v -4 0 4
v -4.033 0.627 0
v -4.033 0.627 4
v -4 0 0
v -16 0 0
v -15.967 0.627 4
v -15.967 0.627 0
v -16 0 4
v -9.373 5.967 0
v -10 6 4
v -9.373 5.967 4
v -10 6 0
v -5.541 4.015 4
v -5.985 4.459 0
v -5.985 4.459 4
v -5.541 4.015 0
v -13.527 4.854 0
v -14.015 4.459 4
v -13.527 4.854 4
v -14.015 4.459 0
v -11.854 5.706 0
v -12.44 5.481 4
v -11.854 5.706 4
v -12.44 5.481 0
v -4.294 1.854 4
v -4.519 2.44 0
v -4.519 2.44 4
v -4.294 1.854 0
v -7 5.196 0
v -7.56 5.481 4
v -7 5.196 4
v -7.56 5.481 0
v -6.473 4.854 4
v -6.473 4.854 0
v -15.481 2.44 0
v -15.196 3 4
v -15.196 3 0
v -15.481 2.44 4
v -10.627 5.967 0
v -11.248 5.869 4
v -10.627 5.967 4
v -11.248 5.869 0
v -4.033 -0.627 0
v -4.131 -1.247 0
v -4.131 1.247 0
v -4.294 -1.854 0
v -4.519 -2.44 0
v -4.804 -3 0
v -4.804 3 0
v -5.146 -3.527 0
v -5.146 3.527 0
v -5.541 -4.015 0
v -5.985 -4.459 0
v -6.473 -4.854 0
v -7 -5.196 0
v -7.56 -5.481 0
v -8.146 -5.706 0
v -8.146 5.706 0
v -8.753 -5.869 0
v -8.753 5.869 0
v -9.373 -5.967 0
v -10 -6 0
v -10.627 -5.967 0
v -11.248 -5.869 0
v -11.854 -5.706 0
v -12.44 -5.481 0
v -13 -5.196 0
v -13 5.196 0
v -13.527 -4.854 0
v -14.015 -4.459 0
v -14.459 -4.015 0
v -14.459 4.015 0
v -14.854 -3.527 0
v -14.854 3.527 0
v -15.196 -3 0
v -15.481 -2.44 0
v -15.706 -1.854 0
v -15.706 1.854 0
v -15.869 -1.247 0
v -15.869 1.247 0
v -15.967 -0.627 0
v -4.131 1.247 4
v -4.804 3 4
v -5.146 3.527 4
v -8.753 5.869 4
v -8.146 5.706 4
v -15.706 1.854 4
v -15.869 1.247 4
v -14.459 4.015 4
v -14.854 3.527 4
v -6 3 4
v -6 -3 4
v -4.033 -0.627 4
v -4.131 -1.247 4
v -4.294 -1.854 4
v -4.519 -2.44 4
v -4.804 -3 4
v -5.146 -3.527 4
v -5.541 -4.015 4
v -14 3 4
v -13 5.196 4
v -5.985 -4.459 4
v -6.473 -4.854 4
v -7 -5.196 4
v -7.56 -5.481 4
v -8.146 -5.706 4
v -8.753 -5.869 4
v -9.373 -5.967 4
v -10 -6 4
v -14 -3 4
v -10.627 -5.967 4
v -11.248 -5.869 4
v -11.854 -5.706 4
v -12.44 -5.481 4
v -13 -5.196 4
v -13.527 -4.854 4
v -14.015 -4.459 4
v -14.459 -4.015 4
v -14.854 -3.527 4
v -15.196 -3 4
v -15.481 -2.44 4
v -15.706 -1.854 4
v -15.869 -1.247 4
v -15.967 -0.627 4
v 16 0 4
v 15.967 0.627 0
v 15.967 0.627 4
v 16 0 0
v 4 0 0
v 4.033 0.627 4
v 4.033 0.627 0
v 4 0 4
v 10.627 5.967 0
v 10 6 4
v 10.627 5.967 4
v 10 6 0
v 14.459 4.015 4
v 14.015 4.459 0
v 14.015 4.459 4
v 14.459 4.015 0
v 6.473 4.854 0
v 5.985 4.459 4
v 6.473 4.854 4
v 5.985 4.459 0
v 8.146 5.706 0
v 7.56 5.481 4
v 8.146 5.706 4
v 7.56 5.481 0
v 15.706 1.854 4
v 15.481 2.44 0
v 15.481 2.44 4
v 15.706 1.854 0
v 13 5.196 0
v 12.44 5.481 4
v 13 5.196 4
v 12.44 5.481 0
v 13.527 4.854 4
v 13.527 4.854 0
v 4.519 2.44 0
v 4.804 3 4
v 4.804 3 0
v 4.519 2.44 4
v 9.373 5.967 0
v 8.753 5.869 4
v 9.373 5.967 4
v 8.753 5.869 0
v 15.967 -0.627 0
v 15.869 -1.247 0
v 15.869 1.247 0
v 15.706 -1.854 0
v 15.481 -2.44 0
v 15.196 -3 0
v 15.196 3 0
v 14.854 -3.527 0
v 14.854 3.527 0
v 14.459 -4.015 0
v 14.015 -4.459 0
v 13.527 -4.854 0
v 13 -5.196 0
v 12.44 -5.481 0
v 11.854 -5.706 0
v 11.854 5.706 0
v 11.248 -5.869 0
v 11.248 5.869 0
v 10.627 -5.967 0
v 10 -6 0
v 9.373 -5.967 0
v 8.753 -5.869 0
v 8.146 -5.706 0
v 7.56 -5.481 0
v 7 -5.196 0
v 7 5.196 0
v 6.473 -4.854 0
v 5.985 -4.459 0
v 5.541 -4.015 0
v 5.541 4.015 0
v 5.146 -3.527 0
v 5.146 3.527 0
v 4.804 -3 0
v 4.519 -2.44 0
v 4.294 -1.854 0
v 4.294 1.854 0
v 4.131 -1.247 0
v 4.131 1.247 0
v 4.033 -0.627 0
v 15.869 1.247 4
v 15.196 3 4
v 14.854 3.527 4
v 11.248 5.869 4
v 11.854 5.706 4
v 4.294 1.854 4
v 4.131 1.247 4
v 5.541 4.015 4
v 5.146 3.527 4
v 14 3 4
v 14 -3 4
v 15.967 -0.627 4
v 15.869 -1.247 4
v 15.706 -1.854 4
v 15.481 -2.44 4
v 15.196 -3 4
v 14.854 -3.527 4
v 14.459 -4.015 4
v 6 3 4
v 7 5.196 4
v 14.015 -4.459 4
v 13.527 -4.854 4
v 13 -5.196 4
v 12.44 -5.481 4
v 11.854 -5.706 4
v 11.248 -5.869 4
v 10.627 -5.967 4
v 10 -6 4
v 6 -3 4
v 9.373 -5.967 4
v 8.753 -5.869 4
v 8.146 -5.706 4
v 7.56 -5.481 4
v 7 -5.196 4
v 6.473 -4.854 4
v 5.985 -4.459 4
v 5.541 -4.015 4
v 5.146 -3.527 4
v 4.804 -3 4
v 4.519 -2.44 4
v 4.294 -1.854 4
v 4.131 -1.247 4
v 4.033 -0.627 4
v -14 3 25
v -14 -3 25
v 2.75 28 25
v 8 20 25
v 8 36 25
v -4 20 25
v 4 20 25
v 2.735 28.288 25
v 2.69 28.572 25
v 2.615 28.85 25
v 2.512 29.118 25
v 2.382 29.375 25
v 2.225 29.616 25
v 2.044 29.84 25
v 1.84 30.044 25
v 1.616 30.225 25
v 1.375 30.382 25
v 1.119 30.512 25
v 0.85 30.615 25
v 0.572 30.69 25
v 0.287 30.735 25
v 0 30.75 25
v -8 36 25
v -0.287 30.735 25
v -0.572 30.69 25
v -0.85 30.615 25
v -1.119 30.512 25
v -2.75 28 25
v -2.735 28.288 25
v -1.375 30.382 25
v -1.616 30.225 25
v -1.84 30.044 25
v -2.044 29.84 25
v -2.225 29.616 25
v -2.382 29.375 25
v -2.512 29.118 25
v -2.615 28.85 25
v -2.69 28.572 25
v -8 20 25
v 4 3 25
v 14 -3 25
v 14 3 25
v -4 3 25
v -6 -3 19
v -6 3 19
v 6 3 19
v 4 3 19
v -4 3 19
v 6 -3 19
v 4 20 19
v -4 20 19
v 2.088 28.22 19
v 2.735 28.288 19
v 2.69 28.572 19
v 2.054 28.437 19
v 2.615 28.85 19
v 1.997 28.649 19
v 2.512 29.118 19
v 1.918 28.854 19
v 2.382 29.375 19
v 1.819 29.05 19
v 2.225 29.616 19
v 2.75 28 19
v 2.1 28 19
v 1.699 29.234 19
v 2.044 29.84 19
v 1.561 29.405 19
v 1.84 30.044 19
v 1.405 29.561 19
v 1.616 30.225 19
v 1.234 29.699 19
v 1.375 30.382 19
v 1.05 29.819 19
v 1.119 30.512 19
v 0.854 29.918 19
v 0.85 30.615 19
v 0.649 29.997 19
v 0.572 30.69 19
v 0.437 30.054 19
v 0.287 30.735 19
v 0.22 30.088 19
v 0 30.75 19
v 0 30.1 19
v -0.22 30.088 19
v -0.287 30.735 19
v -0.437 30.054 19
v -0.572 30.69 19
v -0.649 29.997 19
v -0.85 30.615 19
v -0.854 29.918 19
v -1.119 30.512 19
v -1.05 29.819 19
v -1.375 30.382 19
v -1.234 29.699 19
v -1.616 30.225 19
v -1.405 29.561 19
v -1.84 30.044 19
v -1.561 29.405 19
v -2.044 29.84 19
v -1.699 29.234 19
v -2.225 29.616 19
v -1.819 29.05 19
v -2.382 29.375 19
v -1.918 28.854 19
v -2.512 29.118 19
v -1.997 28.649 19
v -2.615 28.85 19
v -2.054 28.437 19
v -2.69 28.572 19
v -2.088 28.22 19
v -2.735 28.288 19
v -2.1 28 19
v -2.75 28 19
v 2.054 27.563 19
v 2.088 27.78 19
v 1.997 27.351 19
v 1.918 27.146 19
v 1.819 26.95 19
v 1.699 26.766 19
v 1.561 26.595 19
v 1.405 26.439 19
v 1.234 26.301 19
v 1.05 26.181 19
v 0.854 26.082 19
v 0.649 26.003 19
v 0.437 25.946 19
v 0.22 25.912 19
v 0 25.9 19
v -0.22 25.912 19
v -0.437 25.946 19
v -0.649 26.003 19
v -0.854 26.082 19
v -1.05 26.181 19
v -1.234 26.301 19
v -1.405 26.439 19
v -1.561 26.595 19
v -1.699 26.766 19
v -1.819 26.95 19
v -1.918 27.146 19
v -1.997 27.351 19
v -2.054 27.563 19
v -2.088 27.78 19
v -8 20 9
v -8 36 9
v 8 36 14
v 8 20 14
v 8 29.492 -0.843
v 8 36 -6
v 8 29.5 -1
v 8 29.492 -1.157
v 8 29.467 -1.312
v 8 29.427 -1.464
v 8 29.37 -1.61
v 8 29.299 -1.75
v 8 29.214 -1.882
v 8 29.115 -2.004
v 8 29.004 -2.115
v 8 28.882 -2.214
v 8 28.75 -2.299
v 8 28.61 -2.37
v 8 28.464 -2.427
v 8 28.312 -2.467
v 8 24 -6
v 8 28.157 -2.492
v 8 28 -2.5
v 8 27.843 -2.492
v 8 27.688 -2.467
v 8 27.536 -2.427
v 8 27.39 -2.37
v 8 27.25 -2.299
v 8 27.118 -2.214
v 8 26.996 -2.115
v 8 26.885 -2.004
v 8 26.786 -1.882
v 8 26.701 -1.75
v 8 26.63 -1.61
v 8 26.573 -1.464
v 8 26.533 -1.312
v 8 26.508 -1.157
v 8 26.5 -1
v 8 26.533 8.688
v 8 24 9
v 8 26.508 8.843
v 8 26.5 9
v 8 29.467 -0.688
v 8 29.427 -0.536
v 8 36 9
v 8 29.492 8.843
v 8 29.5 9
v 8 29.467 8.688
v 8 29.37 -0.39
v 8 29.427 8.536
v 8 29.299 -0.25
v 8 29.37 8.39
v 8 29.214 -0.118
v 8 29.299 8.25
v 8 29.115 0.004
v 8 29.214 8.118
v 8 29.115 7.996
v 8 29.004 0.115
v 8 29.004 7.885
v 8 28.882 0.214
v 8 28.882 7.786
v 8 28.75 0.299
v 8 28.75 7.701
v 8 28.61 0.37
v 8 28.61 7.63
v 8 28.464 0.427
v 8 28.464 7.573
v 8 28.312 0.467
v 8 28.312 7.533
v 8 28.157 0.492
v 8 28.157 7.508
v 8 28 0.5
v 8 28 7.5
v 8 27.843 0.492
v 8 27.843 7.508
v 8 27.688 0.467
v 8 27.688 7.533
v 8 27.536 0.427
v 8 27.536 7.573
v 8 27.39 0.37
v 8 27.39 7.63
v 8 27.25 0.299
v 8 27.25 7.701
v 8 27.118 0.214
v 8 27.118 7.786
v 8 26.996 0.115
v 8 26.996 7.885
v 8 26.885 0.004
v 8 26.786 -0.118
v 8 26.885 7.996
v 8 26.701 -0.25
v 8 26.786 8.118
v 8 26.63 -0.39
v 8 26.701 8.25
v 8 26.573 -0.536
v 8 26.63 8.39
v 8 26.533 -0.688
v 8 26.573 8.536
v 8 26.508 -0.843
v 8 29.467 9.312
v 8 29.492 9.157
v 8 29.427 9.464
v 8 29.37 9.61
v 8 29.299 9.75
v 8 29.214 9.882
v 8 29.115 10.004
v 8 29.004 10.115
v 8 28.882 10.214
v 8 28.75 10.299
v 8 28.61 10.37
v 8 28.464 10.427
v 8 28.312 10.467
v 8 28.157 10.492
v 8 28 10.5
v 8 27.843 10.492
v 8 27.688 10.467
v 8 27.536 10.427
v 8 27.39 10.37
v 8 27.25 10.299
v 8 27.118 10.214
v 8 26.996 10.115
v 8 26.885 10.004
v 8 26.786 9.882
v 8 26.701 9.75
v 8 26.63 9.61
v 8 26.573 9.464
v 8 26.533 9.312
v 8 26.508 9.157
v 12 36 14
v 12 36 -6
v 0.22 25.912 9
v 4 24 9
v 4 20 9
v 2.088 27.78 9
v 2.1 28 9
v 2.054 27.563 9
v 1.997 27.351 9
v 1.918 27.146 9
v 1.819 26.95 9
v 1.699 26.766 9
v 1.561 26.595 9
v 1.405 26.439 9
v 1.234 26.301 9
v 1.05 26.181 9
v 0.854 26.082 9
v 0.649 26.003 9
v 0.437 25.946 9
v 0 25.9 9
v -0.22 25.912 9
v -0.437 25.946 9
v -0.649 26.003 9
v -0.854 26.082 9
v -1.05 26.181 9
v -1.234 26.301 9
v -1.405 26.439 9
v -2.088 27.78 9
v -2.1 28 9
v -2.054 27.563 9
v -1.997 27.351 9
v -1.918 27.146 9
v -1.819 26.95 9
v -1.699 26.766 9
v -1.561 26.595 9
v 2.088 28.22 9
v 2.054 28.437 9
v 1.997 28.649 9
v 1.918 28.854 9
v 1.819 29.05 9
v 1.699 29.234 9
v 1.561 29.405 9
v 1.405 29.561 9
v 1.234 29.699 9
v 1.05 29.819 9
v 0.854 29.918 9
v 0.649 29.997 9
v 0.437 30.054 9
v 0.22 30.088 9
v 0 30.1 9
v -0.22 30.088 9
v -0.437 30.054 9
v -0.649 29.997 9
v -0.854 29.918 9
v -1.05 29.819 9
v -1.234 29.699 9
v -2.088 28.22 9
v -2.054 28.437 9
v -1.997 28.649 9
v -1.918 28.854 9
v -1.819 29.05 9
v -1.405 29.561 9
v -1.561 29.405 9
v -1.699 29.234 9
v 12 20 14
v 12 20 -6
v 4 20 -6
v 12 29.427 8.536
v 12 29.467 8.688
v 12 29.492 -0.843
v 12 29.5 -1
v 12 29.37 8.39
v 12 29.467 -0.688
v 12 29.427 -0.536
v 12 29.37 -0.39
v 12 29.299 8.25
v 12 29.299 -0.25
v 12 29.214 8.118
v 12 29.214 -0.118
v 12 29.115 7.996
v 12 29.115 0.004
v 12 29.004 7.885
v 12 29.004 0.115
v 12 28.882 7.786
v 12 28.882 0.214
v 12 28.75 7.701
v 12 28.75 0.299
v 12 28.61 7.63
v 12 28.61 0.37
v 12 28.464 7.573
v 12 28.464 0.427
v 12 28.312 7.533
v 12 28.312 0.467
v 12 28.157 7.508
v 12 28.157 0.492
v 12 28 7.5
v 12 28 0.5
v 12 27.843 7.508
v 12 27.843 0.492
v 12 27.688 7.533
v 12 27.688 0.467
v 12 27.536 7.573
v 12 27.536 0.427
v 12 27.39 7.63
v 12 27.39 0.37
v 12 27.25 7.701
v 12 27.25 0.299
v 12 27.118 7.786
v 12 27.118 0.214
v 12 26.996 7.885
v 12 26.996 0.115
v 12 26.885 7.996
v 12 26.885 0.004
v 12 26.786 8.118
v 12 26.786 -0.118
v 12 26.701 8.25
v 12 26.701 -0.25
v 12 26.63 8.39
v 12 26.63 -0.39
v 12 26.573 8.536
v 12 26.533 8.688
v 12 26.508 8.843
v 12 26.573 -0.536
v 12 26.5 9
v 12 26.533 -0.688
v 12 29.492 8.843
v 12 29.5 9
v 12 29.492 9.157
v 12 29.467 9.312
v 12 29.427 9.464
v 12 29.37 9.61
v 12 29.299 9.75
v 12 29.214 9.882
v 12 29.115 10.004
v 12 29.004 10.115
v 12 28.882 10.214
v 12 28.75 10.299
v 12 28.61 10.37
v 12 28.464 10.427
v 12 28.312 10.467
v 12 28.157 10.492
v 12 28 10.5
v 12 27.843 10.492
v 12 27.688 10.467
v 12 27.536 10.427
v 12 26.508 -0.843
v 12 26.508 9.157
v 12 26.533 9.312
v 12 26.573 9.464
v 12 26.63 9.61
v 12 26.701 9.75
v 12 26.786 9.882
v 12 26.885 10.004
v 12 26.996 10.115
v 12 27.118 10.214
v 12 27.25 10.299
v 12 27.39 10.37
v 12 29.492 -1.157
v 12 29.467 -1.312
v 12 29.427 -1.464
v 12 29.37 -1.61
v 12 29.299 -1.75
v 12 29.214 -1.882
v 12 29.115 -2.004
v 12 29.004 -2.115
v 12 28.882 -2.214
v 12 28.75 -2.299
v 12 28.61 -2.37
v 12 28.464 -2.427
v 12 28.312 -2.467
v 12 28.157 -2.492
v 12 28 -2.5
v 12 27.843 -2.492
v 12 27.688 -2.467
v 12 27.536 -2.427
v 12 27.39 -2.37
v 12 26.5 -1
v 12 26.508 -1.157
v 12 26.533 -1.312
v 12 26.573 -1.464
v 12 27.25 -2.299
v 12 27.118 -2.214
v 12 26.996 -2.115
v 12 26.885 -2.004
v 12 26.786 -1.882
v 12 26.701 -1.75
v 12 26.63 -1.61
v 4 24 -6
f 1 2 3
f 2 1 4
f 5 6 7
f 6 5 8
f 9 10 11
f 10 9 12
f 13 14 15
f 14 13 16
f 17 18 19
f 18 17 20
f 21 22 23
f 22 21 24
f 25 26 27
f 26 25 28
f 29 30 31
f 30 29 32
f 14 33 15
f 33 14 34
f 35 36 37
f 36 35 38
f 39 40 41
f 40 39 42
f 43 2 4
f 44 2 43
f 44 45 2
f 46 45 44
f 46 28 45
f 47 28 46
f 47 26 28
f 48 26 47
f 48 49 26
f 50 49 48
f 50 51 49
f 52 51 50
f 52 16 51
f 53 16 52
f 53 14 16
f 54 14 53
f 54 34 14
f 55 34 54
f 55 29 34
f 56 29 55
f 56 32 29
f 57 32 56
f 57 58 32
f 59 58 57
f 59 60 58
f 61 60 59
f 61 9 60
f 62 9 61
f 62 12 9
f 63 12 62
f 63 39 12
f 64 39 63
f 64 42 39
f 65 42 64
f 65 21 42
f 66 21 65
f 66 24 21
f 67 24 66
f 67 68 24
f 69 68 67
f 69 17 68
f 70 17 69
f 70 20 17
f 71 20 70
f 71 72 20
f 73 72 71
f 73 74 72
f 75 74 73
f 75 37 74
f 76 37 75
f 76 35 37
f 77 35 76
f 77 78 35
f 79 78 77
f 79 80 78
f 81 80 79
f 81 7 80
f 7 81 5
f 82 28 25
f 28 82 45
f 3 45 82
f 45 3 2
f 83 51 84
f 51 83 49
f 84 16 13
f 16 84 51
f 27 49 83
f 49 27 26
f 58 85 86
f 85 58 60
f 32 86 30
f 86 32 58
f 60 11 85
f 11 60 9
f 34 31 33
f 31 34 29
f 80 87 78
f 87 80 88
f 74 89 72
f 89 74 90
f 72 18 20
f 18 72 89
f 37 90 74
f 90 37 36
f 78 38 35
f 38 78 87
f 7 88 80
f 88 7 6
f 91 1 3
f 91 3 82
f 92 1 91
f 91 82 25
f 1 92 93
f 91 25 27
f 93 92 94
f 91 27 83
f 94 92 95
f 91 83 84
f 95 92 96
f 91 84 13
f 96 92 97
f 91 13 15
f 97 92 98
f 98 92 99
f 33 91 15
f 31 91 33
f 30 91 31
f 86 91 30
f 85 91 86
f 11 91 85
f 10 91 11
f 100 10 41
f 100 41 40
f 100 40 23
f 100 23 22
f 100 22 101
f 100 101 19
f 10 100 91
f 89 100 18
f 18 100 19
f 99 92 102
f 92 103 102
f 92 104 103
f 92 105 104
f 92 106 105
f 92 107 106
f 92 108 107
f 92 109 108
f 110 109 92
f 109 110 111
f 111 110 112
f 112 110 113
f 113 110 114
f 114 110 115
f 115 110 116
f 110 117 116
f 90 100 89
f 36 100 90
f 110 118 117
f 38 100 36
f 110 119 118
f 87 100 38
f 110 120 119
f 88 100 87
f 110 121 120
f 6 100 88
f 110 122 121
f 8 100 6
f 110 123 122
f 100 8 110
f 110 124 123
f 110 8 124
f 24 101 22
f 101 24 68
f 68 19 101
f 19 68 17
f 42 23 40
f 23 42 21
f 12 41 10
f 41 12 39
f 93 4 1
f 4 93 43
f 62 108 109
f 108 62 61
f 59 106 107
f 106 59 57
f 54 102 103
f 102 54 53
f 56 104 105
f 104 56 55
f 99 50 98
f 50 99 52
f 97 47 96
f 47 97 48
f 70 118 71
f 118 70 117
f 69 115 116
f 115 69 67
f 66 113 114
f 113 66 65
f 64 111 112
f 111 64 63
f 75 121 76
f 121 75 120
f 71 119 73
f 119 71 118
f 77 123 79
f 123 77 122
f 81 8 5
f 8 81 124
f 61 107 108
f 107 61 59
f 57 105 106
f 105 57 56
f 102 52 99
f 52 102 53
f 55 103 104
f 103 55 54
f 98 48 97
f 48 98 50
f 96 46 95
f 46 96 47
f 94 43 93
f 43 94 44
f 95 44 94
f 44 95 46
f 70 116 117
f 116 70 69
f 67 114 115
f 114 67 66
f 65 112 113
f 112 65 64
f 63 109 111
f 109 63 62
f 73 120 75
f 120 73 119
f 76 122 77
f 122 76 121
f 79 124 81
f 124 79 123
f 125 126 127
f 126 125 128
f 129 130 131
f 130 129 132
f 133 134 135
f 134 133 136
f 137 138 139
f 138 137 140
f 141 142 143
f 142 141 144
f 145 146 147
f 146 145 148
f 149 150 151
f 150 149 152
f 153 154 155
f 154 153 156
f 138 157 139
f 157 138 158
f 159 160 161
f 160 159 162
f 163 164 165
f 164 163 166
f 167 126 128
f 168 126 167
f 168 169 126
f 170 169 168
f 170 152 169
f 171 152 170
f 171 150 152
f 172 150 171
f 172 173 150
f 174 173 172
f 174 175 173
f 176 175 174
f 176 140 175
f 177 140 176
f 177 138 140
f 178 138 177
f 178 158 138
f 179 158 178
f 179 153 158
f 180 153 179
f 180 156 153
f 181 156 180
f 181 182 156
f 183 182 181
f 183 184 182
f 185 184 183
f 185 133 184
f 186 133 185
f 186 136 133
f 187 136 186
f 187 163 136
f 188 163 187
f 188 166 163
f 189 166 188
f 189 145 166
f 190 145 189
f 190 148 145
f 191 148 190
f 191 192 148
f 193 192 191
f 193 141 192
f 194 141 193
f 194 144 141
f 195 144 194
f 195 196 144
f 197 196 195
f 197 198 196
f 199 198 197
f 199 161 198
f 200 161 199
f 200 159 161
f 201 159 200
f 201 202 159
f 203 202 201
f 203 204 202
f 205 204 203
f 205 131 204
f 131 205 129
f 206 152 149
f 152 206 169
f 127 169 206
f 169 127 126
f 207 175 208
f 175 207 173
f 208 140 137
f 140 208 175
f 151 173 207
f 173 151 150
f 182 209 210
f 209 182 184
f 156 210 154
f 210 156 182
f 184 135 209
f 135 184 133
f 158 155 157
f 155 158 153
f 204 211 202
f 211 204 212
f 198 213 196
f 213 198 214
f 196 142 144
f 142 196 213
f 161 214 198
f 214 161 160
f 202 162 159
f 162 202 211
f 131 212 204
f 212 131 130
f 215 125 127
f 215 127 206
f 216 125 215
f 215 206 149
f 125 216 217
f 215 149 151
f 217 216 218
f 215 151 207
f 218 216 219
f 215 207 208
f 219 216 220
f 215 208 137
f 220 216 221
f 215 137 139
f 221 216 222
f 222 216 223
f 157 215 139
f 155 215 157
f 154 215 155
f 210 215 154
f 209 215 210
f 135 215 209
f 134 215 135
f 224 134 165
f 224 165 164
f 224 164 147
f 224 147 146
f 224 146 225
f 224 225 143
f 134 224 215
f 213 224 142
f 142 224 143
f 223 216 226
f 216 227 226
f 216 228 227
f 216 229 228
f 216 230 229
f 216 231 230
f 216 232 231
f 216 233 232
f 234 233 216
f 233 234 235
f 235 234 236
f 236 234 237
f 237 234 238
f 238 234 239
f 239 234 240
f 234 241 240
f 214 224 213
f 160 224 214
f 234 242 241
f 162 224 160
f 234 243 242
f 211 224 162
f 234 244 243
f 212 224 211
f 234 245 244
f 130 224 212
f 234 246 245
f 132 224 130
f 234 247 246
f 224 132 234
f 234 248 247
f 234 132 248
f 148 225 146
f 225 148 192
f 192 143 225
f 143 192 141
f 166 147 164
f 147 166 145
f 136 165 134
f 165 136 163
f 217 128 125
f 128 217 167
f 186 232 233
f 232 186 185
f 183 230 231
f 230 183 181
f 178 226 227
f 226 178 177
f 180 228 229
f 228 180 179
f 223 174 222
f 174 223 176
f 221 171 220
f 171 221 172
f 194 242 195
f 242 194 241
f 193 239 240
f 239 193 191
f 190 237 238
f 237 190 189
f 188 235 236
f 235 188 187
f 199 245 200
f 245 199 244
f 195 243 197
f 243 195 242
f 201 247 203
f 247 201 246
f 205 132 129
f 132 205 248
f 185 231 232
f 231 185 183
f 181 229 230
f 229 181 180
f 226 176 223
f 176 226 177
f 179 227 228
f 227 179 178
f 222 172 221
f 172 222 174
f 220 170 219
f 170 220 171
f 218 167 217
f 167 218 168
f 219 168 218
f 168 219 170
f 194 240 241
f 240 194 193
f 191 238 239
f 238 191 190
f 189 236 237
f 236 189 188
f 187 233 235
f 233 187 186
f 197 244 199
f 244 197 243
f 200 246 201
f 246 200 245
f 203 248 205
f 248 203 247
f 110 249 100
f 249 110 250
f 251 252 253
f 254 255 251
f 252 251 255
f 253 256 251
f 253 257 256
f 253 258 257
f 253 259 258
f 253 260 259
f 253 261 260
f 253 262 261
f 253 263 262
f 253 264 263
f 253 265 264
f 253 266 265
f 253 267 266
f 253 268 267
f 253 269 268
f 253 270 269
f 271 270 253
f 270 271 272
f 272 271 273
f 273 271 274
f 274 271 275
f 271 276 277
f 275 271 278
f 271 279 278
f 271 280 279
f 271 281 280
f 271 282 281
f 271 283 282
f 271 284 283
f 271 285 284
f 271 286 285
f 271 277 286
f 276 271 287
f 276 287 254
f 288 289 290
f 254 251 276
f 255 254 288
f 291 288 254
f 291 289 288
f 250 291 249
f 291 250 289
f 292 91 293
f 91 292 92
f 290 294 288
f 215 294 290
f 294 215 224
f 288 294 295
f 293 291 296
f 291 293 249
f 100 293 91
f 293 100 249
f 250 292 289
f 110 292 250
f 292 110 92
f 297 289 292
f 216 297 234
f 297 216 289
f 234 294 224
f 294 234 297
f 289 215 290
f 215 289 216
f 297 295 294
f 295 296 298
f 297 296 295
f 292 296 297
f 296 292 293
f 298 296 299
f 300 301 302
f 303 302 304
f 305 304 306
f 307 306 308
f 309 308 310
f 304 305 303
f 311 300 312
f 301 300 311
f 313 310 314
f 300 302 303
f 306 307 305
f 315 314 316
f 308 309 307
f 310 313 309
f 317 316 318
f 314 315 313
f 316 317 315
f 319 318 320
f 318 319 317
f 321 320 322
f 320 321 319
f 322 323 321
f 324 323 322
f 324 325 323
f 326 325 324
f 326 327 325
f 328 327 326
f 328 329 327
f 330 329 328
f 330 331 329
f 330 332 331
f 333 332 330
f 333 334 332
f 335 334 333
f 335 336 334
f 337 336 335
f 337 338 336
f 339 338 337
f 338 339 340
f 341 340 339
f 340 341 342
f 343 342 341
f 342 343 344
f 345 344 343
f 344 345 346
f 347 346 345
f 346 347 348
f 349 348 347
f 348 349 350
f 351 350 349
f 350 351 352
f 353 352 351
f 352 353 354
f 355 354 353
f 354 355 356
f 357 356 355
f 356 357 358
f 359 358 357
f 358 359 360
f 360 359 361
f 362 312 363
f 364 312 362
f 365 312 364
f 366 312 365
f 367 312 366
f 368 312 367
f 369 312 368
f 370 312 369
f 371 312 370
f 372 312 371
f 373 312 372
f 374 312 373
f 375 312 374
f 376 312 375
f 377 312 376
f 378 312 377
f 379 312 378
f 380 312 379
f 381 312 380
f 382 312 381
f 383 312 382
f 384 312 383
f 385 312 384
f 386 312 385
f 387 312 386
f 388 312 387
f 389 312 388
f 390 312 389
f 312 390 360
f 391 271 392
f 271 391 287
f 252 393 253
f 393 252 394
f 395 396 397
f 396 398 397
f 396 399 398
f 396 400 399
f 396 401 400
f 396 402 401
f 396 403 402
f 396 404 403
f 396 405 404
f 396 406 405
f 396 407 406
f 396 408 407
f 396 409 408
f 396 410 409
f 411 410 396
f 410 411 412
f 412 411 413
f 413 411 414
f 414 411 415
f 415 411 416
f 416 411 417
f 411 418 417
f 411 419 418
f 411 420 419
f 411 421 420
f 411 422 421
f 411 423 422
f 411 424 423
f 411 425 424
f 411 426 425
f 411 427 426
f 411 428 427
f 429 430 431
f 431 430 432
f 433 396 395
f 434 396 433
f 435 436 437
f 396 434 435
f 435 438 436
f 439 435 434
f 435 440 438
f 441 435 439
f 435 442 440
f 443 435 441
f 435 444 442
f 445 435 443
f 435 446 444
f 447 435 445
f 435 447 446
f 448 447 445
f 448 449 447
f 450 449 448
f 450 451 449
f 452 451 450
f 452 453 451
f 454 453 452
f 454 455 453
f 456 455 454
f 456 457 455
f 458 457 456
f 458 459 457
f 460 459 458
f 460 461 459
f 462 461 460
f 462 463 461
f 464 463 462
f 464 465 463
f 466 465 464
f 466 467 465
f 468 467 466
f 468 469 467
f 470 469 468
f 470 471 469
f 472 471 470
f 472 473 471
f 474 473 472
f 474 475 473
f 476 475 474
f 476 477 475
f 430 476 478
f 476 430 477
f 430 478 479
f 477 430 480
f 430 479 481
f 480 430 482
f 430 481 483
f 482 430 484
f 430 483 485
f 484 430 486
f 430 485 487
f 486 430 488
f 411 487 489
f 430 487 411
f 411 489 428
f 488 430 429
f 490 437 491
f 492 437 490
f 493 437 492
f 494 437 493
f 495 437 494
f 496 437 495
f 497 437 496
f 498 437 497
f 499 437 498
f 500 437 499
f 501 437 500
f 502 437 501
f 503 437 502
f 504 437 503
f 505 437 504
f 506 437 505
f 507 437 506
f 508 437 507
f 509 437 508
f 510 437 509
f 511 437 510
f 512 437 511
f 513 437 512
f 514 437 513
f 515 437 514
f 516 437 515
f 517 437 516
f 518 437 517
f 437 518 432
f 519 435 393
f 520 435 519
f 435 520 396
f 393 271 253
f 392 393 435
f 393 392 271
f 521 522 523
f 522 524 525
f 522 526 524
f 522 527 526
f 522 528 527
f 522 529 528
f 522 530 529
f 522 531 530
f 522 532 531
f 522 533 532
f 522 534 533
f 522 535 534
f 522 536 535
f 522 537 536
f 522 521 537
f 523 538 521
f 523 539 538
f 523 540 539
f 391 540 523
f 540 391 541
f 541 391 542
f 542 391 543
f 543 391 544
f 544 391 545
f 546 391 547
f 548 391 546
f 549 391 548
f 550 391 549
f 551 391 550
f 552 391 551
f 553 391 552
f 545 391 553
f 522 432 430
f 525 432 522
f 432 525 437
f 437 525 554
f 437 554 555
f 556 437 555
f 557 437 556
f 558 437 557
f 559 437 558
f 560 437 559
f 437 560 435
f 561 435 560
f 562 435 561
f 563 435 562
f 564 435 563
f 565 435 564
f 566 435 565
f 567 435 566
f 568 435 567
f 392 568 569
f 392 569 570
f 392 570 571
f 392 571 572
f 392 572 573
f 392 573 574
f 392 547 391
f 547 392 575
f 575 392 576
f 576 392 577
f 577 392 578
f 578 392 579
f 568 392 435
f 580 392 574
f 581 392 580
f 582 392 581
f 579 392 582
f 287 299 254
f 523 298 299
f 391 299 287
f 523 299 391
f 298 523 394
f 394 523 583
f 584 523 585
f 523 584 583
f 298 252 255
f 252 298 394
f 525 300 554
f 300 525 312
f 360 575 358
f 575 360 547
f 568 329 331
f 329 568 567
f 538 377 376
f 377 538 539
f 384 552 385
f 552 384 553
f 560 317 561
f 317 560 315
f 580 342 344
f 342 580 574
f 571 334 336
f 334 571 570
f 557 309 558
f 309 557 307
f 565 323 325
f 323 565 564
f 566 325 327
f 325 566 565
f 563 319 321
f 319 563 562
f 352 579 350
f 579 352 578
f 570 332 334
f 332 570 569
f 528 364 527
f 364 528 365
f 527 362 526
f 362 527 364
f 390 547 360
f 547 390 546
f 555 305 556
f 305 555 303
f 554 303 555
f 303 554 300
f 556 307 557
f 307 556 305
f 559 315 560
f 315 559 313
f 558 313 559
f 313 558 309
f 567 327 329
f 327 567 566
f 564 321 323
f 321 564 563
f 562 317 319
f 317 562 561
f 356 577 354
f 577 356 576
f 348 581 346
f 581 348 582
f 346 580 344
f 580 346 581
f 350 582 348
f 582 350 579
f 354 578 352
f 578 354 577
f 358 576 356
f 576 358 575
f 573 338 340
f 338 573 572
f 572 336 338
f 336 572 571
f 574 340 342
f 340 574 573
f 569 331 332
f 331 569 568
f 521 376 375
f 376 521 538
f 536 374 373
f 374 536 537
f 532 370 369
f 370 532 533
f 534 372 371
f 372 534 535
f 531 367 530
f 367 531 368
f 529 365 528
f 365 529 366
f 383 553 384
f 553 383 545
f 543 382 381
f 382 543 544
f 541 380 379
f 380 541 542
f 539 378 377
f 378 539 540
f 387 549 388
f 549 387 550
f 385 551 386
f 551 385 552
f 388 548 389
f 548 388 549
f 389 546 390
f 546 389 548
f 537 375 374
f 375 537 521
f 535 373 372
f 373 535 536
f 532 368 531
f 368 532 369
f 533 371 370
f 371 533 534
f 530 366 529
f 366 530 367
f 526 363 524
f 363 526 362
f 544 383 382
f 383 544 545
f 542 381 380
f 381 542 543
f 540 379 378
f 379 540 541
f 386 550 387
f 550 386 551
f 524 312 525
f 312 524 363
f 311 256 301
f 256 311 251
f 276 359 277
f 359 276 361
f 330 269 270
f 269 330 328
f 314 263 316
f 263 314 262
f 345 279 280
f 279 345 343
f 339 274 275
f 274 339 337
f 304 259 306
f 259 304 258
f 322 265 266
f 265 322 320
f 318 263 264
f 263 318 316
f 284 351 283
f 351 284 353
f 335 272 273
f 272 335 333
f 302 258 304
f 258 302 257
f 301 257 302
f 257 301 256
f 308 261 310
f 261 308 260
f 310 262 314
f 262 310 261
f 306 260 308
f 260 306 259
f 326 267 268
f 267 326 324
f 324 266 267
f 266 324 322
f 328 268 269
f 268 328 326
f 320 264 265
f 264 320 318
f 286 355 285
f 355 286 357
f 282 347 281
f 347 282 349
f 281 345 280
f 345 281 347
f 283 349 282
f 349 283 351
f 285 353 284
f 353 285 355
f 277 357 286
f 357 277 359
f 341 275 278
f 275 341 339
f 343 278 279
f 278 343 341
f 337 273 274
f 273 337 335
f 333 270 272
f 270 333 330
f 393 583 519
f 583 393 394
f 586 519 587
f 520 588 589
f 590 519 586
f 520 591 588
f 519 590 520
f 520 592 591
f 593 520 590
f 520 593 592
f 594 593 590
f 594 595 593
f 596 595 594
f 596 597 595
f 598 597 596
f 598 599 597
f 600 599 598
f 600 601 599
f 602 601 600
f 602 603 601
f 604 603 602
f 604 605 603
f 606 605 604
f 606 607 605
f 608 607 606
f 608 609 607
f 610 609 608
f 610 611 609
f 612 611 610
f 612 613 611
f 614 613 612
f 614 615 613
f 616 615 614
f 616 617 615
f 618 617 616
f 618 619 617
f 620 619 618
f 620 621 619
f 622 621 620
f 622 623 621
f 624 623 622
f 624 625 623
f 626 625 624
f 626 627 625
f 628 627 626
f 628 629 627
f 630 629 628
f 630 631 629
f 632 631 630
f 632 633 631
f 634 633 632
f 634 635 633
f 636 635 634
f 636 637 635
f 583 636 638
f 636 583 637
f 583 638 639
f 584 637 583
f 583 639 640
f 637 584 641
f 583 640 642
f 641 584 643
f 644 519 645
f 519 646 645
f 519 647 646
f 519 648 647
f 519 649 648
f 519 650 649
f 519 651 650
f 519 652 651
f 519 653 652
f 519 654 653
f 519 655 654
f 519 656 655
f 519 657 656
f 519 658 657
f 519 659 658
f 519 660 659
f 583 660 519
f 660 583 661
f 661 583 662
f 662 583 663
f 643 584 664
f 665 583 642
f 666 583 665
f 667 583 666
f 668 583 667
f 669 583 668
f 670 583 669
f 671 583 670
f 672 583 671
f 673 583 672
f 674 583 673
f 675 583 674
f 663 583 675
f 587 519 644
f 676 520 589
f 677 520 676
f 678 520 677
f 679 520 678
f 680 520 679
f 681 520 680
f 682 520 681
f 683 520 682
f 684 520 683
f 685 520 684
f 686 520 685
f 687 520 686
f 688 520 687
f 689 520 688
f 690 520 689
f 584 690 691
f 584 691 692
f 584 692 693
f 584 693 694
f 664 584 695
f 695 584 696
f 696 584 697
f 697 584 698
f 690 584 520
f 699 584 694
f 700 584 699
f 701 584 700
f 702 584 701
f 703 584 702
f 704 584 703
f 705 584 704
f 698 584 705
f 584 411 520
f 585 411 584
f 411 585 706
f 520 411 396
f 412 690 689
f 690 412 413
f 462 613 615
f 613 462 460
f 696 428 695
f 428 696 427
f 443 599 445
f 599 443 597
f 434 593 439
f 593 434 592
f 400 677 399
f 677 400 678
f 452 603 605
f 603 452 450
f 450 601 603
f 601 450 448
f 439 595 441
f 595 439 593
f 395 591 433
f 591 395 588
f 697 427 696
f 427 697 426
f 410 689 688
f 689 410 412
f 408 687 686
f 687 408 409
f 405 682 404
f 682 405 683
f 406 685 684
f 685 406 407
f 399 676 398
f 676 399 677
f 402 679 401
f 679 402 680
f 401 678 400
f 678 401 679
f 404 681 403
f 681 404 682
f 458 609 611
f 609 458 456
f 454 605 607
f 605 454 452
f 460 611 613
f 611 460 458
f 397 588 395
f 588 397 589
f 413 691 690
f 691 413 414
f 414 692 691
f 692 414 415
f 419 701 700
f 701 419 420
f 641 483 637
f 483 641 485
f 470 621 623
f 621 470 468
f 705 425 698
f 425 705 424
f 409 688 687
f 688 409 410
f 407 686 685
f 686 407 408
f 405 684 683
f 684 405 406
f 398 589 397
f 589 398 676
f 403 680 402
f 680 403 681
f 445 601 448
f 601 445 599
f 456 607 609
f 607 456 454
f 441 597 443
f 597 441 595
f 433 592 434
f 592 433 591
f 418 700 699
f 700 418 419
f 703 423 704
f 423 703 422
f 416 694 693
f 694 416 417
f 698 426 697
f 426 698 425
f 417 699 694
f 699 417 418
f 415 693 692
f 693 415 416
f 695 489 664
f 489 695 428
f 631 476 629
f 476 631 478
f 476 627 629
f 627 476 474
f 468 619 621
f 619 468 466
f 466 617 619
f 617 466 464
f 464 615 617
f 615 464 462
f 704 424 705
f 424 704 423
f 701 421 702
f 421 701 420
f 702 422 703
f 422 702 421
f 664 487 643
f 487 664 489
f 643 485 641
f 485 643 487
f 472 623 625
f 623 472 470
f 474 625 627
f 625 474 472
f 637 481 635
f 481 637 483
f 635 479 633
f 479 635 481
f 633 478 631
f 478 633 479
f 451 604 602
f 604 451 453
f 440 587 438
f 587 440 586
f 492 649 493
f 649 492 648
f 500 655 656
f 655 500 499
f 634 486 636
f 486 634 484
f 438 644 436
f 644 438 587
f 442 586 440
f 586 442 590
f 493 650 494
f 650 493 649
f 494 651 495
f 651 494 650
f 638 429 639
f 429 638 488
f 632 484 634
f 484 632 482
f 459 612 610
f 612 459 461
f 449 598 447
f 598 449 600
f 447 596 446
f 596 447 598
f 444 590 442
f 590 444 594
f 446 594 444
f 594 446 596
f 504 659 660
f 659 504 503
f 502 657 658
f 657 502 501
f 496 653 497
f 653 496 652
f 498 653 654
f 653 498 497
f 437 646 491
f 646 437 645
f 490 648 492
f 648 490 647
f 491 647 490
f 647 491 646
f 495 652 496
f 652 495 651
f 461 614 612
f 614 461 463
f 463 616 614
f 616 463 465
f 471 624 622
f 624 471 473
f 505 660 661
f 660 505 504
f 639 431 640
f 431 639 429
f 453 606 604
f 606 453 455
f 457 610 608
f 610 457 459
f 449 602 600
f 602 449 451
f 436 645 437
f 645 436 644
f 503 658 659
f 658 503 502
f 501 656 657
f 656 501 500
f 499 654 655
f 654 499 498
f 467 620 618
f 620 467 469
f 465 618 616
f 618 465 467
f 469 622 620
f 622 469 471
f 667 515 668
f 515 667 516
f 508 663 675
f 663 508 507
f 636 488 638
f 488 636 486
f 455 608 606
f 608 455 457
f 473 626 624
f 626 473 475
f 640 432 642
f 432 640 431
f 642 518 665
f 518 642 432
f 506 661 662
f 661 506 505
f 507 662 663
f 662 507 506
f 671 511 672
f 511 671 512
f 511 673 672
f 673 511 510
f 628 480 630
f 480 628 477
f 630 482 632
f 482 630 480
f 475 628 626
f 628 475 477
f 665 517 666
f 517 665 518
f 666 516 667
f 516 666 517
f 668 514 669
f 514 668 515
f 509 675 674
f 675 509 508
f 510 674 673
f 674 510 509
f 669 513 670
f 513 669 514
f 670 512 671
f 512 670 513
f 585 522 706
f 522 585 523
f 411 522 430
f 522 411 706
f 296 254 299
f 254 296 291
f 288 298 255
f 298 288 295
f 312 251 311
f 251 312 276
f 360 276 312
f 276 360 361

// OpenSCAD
// Suporte do Sensor de Filamento no Cabeçote - Ender 3 V3 KE para MMX
// Modelado parametricamente em formato de "Portal" para desviar do cabo flat
// Criado por Antigravity AI

$fn = 60;

// ==========================================
// VARIÁVEIS PARAMÉTRICAS (Altere aqui se precisar ajustar)
// ==========================================
screw_spacing = 20;     // Distância de centro a centro dos parafusos traseiros (mm)
tunnel_height = 25;     // Altura vertical livre para o cabo flat passar por dentro (mm)
reach_distance = 28;    // Avanço horizontal (Y) até a entrada de latão da extrusora (mm)
base_thickness = 4;     // Espessura da base nos furos (mm)
pilar_width = 8;        // Largura dos pilares laterais (mm)
pilar_thickness = 6;    // Espessura dos pilares laterais (mm)
arm_thickness = 6;      // Espessura do braço horizontal (mm)
ptfe_thread_d = 5.5;    // Diâmetro do furo para rosca M6 do conector pneumático (mm)
sensor_screw_d = 3.0;   // Diâmetro do furo de parafuso do sensor da KE (mm)

// ==========================================
// MÓDULOS DE CONSTRUÇÃO
// ==========================================

module base_furo(pos_x) {
    translate([pos_x, 0, 0]) {
        difference() {
            cylinder(d=pilar_width + 4, h=base_thickness);
            translate([0, 0, -1])
                cylinder(d=3.2, h=base_thickness + 2); // Furo M3 passante
        }
    }
}

module pilar(pos_x) {
    translate([pos_x - pilar_width/2, -pilar_thickness/2, 0]) {
        cube([pilar_width, pilar_thickness, tunnel_height]);
    }
}

module portal() {
    // Bases com furos
    base_furo(-screw_spacing/2);
    base_furo(screw_spacing/2);
    
    // Pilares que sobem de cada parafuso
    pilar(-screw_spacing/2);
    pilar(screw_spacing/2);
    
    // Travessa superior que une os pilares
    translate([-screw_spacing/2 - pilar_width/2, -pilar_thickness/2, tunnel_height - arm_thickness]) {
        cube([screw_spacing + pilar_width, pilar_thickness, arm_thickness]);
    }
}

module braco_e_cabeca() {
    // Braço horizontal que vai de Y=0 até reach_distance
    translate([-pilar_width/2, -pilar_thickness/2, tunnel_height - arm_thickness]) {
        cube([pilar_width, reach_distance + pilar_thickness/2, arm_thickness]);
    }
    
    // Cabeça do sensor (no final do braço)
    translate([0, reach_distance, tunnel_height - arm_thickness]) {
        difference() {
            // Bloco principal da cabeça
            translate([-8, -8, -10])
                cube([16, 16, 10 + arm_thickness]);
            
            // Furo vertical passante para o filamento (4.2mm)
            translate([0, 0, -11])
                cylinder(d=4.2, h=25);
            
            // Furo rosqueável M6 no topo para o conector pneumático PTFE
            translate([0, 0, arm_thickness - 6])
                cylinder(d=ptfe_thread_d, h=7);
        }
        
        // Aba lateral para prender o sensor original da KE
        // O sensor da KE é parafusado na lateral (eixo X)
        translate([8, -8, -25]) {
            difference() {
                // Corpo da aba
                cube([4, 16, 20]);
                
                // Dois furos de ajuste de altura para o parafuso M3 do sensor
                translate([-1, 8, 5])
                    rotate([0, 90, 0])
                        cylinder(d=sensor_screw_d, h=6);
                translate([-1, 8, 15])
                    rotate([0, 90, 0])
                        cylinder(d=sensor_screw_d, h=6);
            }
        }
        
        // Ombro/Guia traseira para travar o sensor e impedir que ele gire
        translate([4, -8, -25]) {
            cube([4, 4, 15]);
        }
    }
}

// ==========================================
// MONTAGEM FINAL
// ==========================================
union() {
    portal();
    braco_e_cabeca();
}
